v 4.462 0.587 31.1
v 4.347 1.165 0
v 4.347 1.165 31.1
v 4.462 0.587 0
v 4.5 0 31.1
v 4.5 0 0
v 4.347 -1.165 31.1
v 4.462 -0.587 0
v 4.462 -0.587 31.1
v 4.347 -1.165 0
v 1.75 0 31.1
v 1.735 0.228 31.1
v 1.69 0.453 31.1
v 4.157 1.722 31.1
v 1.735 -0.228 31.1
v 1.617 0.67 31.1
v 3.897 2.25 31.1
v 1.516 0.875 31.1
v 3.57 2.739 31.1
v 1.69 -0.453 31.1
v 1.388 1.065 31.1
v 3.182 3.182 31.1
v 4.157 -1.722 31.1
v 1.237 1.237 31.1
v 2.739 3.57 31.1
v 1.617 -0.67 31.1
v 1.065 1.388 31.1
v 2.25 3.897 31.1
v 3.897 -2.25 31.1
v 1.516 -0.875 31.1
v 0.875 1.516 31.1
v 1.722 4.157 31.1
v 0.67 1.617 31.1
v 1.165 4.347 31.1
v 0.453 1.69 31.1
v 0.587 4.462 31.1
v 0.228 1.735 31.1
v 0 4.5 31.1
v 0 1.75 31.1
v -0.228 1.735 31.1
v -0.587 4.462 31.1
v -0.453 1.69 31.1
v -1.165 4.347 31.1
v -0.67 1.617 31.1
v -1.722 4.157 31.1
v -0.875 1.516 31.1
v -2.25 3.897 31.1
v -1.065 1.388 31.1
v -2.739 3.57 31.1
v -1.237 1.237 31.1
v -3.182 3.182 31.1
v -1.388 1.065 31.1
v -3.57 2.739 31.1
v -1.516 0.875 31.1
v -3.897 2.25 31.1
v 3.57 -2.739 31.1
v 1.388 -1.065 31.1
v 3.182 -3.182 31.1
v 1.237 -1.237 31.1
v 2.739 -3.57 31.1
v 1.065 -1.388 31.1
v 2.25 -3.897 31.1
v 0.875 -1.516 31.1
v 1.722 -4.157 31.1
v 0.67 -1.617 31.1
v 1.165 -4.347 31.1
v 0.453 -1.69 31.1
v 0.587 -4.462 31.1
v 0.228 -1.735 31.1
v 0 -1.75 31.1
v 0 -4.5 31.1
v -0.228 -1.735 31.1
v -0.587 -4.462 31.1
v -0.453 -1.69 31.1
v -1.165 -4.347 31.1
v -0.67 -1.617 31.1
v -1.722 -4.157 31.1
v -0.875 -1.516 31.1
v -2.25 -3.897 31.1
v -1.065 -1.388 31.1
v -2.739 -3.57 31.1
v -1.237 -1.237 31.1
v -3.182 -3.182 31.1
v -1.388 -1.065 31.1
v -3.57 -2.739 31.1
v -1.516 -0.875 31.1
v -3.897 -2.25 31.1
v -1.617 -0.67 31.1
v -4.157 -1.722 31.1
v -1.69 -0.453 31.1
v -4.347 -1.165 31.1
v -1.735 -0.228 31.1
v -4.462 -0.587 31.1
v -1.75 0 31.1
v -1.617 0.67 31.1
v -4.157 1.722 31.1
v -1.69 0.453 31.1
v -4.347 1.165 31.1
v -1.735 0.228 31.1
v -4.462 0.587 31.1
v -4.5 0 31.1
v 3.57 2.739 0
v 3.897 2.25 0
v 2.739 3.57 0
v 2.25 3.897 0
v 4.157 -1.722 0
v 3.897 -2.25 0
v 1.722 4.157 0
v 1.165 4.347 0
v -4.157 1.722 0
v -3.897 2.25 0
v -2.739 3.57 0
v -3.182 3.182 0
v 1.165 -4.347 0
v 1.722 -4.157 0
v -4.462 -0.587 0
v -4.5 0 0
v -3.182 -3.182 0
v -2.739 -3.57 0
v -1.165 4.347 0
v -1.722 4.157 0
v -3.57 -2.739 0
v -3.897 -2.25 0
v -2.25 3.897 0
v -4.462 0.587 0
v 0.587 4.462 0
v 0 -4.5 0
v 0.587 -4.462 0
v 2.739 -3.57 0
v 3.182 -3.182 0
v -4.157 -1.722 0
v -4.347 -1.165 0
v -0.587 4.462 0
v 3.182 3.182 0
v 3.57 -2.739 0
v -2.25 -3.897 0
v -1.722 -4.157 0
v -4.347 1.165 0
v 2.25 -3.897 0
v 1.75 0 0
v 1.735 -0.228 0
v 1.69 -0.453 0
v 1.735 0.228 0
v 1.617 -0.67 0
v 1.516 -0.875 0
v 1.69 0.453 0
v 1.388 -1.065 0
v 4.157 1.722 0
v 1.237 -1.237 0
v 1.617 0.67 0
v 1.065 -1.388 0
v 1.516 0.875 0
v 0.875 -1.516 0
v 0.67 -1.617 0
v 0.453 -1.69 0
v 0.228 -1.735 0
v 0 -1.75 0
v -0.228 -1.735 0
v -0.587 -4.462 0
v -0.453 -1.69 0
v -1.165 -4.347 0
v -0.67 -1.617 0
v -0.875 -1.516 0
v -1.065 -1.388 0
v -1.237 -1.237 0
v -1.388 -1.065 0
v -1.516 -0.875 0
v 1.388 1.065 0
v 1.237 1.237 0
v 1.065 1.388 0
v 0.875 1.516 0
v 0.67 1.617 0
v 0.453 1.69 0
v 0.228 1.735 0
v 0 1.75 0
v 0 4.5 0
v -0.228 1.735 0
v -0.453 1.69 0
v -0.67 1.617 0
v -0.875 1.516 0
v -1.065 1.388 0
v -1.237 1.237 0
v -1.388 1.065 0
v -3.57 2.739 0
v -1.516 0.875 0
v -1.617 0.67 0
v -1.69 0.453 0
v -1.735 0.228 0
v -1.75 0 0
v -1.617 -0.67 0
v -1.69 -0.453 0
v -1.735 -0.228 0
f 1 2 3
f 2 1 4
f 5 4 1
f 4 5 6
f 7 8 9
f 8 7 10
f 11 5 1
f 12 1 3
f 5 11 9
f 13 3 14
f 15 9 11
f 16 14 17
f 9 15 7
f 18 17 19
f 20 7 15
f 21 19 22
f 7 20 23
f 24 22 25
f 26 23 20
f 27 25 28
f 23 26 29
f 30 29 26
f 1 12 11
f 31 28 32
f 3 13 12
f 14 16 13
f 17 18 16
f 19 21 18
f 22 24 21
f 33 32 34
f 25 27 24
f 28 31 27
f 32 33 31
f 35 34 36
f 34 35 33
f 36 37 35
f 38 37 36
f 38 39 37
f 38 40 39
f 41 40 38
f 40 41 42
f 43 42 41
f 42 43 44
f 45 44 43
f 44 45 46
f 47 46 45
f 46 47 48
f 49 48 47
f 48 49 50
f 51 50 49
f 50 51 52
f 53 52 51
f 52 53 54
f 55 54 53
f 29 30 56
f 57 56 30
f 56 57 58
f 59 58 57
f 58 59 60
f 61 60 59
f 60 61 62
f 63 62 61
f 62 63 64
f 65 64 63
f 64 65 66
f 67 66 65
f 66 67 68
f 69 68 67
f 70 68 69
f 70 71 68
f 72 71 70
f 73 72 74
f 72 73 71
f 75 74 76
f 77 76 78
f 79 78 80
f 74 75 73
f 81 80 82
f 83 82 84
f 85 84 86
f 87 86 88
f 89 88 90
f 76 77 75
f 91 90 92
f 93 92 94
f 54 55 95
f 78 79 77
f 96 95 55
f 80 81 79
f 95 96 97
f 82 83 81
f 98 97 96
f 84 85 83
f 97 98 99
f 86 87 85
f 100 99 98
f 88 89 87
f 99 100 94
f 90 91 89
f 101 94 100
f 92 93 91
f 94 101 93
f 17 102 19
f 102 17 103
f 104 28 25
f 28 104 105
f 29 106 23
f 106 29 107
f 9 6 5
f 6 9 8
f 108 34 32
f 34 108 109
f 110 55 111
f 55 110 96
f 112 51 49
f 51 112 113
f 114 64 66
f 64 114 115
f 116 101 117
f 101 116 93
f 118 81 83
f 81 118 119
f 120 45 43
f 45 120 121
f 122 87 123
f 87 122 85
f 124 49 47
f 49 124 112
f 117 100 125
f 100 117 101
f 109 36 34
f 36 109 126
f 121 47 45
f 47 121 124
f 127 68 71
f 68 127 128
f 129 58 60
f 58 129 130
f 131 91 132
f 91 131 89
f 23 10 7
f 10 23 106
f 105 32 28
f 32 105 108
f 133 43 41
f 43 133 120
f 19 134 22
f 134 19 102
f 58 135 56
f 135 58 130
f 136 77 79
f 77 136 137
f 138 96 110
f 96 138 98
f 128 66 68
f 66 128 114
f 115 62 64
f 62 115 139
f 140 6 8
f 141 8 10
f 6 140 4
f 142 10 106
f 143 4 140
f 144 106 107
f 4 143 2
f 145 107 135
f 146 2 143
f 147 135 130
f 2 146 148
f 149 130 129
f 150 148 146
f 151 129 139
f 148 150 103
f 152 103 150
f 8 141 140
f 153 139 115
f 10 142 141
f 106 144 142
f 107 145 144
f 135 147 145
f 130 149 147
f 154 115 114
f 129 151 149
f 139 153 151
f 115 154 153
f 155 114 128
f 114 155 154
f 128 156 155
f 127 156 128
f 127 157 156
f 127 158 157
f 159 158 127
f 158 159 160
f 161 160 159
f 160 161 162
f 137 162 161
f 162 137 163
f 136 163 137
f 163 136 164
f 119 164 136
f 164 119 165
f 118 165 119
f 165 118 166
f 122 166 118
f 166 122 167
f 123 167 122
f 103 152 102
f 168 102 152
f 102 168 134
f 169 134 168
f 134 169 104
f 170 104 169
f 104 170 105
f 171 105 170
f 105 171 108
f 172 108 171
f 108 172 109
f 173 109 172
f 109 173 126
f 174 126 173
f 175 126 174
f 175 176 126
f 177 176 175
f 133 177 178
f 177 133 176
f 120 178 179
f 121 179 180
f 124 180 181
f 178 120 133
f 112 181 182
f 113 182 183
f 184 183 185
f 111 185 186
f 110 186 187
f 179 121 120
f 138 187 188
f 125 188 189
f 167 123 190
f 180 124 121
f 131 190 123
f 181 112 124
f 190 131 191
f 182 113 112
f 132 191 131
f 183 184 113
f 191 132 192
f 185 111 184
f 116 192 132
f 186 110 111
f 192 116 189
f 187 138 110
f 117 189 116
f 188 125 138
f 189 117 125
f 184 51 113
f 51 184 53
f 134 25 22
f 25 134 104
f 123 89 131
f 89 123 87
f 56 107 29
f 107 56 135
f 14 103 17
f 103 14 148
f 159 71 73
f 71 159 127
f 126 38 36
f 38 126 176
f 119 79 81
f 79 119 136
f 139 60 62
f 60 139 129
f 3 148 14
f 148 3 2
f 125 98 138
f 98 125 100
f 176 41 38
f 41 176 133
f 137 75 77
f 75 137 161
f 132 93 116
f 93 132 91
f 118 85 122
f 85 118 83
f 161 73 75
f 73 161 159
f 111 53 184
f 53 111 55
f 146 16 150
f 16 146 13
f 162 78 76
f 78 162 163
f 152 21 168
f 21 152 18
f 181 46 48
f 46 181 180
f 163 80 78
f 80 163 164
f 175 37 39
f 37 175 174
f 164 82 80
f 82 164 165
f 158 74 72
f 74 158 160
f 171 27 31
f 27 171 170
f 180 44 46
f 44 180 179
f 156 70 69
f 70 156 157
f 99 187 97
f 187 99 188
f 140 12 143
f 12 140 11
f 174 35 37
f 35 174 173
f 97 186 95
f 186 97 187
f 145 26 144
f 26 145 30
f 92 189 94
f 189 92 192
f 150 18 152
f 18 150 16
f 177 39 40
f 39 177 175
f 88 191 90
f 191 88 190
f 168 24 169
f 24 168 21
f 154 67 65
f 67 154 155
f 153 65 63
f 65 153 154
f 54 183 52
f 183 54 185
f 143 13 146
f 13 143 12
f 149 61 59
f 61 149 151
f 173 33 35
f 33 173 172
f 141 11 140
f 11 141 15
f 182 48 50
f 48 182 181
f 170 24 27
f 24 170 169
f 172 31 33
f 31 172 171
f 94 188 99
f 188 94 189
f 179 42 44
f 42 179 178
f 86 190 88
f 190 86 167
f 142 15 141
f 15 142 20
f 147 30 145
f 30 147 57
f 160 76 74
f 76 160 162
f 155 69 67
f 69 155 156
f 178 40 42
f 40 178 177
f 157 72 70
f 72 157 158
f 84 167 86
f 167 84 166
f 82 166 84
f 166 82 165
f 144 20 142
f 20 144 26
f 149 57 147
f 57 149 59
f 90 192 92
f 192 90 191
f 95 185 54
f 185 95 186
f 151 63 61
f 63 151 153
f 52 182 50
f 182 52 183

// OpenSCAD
// file: parameters.scad
// =============================================================================
// Gen-BM — nightly 2026-10-06 (physics_scorer, honest magpylib watts)
// Lowest-gap pancake: Ø20 ring at R52 (Ø5 assists R42/52/62) with low-profile 7.65 mm dense-wound copper and an 18 mm radial build on wide 29–71 mm sector bobbins — the smallest magnet gap of the series (10.25 mm) — on thick 1/4" (6.35 mm) steel so the higher flux per pole stays well clear of saturation.
// Clocking 0 deg (magnets N facing S) + D-flat keyed bore + index notch + flip-symmetric hole map.
// Windable 2-piece bobbin; turns = physics_scorer turns_fit; copper only between flanges.
// Steel back-iron: 2× Ø138 × 6.35 mm (1/4") mild-steel discs (steel_backiron_disc.dxf); magnets sit ON the steel
// (through-pockets) -> score with --back-iron.
// =============================================================================
topology            = "dual_rotor";

// --- Wire / winding (physics_scorer winding-fit) -------------------------------
wire_awg            = 26;
wire_od             = 0.45;     // insulated OD mm (bare 0.405)
fill_realistic      = 0.65;     // insulated-wire area / window (DENSE layered wind with a jig; scorer cap 0.65)
turns               = 562;       // = physics_scorer turns_fit (do NOT raise)
coil_former_type    = "bobbin";
coil_core_inset     = 18.00;     // radial copper build: hub = copper boundary inset by this
wind_build_axial    = 0.0;      // nothing proud of the flanges
wind_build_radial   = 0.0;

// --- Bobbin (base + lid) ---------------------------------------------------------
coil_id_r           = 29.00;    // copper boundary sector
coil_od_r           = 71.00;
span_deg            = 52.68;    // = pitch - 2*asin((wall+0.85)/coil_id_r) -> >=1.2 mm stator web
former_web          = 7.65;     // copper height between flanges (TALL copper: steel keeps Bz up)
flange_t            = 0.80;     // >= 0.8 mm FDM wall rule (tall winds push on the flanges)
wall                = 1.00;     // flange lip beyond copper
former_bare_h       = former_web + 2 * flange_t;
coil_envelope_h     = former_bare_h + 2 * wind_build_axial;
tab_w               = 7.0;
tab_len             = 7.0;
tab_h               = former_bare_h / 2;
pin_d               = 1.9;      // 1.75 mm filament locating pin
coil_mount_r        = coil_od_r + 0.2 + 4.0;
lead_y              = 1.6;
lead_slot_w         = 0.9;
lead_groove_d       = 0.6;

// --- Gap -------------------------------------------------------------------------
run_clear           = 0.50;     // rotor face -> flange
gap_spacer_h        = run_clear + wind_build_axial;
m2m                 = coil_envelope_h + 2 * run_clear;   // rotor face to rotor face (= gap_sleeve length)

// --- Stator ----------------------------------------------------------------------
coil_stations       = 6;
bay_clear           = 0.25;
stator_thick        = former_bare_h;                        // bobbins flush both faces
stator_od           = 160.0;
shaft_clear_stator  = 14.0;     // stator is static; gap sleeve OD 12 spins inside

// --- Rotor(s) --------------------------------------------------------------------
magnet_Br           = 1.43;     // N52
magnet_d_large      = 20.0;
magnet_h_large      = 5.0;      // one O20x5 per pocket
magnet_h_small      = 5.0;      // one O5x5 per pocket
halbach_magnetisation = "diametric"; // O5x5 assist magnets MUST be DIAMETRICALLY magnetised (tangential)
rotor_b_same_axis   = true;     // same-index magnets share one axis: N faces S across the gap
large_pocket_d      = 20.3;
small_pocket_d      = 5.3;
pocket_h            = 5.10;     // THROUGH the carrier: magnet back face sits on the steel disc
large_n             = 8;
R_large             = 52.0;
R_small_inner       = 42.0;
R_small_mid         = 52.0;
R_small_outer       = 62.0;
small_r_list        = [R_small_inner, R_small_mid, R_small_outer];   // O5 pockets between poles
carrier_od          = 138.0;
carrier_thick       = pocket_h;
hub_h               = 13.5;     // > steel_t + insert: radial set-screw clears the steel
hub_od              = 24.0;     // slim hub so the M4 brace rods fit at R~18 inside the coil ring
hub_insert_d        = 4.0;      // M3 heat-set insert, radial, bears on the D-flat
rotor_b_offset_deg  = 0.0;      // CLOCKING: magnets directly opposite
shaft_key           = "dflat";
dflat_depth         = 0.5;      // 8 mm shaft with 0.5 mm flat (7.5 across flat)
index_notch_d       = 3.0;

// --- Steel back-iron (buyable laser-cut) -------------------------------------------
steel_t             = 6.35;      // mild steel thickness (image method ignores it; sized from steel_flux.py so the return path stays well below saturation)
steel_center_hole   = 26.0;     // slips over the rotor hub (OD 24)
steel_od            = carrier_od;   // steel disc OD = rotor carrier OD

// --- Modular MAX interface ----------------------------------------------------------
shaft_bore          = 8.35;
dflat_x             = 4.0 - dflat_depth + (shaft_bore - 8.0) / 2;
bearing_d           = 21.85;
bearing_h           = 7.2;
m3_clear            = 3.5;
bolt_r_inner        = 30.0;     // M3 steel-disc clamp bolts (inside the magnet ring)
bolt_n_inner        = 4;
bolt_inner_angles   = [0, 90, 180, 270];
bolt_r_outer        = 65.0;     // M3 steel-disc clamp bolts (outside the magnet ring)
bolt_outer_angles   = [45, 135, 225, 315];
flange_bolt_r       = 75.0;     // frame rods: OUTSIDE the rotor OD (rotors spin inside them)
flange_bolt_n       = 6;
flange_bolt_offset  = 30.00;    // between coil stations -> never cuts a lead groove/tab
brace_r             = 18.0;
brace_d             = 4.3;      // temporary M4 jack rods (assembly only)
brace_n             = 4;
brace_angles        = [45, 135, 225, 315];          // flip-symmetric

spacer_pad_od       = 14.0;
spacer_pad_id       = m3_clear;
endbell_od          = 160.0;
endbell_thick       = 8.0;
endbell_shaft_clear = 10.0;
collar_h            = 10.0;
standoff_od         = 9.0;
frame_standoff_h    = run_clear + carrier_thick + hub_h + collar_h + 2.0;
sleeve_od           = 12.0;
plate_max_mm        = 410;

$fn = 64;
// main file
// Gen-BM — frame standoff tube between stator and an endbell, on each M3 frame rod (outside rotor OD).
// Print x12. Height = frame_standoff_h (rotor + steel + hub + collar + running clearance).
include <parameters.scad>;
$fn = 48;
difference() {
    cylinder(d=standoff_od, h=frame_standoff_h);
    translate([0, 0, -0.1]) cylinder(d=m3_clear, h=frame_standoff_h + 0.2);
}
